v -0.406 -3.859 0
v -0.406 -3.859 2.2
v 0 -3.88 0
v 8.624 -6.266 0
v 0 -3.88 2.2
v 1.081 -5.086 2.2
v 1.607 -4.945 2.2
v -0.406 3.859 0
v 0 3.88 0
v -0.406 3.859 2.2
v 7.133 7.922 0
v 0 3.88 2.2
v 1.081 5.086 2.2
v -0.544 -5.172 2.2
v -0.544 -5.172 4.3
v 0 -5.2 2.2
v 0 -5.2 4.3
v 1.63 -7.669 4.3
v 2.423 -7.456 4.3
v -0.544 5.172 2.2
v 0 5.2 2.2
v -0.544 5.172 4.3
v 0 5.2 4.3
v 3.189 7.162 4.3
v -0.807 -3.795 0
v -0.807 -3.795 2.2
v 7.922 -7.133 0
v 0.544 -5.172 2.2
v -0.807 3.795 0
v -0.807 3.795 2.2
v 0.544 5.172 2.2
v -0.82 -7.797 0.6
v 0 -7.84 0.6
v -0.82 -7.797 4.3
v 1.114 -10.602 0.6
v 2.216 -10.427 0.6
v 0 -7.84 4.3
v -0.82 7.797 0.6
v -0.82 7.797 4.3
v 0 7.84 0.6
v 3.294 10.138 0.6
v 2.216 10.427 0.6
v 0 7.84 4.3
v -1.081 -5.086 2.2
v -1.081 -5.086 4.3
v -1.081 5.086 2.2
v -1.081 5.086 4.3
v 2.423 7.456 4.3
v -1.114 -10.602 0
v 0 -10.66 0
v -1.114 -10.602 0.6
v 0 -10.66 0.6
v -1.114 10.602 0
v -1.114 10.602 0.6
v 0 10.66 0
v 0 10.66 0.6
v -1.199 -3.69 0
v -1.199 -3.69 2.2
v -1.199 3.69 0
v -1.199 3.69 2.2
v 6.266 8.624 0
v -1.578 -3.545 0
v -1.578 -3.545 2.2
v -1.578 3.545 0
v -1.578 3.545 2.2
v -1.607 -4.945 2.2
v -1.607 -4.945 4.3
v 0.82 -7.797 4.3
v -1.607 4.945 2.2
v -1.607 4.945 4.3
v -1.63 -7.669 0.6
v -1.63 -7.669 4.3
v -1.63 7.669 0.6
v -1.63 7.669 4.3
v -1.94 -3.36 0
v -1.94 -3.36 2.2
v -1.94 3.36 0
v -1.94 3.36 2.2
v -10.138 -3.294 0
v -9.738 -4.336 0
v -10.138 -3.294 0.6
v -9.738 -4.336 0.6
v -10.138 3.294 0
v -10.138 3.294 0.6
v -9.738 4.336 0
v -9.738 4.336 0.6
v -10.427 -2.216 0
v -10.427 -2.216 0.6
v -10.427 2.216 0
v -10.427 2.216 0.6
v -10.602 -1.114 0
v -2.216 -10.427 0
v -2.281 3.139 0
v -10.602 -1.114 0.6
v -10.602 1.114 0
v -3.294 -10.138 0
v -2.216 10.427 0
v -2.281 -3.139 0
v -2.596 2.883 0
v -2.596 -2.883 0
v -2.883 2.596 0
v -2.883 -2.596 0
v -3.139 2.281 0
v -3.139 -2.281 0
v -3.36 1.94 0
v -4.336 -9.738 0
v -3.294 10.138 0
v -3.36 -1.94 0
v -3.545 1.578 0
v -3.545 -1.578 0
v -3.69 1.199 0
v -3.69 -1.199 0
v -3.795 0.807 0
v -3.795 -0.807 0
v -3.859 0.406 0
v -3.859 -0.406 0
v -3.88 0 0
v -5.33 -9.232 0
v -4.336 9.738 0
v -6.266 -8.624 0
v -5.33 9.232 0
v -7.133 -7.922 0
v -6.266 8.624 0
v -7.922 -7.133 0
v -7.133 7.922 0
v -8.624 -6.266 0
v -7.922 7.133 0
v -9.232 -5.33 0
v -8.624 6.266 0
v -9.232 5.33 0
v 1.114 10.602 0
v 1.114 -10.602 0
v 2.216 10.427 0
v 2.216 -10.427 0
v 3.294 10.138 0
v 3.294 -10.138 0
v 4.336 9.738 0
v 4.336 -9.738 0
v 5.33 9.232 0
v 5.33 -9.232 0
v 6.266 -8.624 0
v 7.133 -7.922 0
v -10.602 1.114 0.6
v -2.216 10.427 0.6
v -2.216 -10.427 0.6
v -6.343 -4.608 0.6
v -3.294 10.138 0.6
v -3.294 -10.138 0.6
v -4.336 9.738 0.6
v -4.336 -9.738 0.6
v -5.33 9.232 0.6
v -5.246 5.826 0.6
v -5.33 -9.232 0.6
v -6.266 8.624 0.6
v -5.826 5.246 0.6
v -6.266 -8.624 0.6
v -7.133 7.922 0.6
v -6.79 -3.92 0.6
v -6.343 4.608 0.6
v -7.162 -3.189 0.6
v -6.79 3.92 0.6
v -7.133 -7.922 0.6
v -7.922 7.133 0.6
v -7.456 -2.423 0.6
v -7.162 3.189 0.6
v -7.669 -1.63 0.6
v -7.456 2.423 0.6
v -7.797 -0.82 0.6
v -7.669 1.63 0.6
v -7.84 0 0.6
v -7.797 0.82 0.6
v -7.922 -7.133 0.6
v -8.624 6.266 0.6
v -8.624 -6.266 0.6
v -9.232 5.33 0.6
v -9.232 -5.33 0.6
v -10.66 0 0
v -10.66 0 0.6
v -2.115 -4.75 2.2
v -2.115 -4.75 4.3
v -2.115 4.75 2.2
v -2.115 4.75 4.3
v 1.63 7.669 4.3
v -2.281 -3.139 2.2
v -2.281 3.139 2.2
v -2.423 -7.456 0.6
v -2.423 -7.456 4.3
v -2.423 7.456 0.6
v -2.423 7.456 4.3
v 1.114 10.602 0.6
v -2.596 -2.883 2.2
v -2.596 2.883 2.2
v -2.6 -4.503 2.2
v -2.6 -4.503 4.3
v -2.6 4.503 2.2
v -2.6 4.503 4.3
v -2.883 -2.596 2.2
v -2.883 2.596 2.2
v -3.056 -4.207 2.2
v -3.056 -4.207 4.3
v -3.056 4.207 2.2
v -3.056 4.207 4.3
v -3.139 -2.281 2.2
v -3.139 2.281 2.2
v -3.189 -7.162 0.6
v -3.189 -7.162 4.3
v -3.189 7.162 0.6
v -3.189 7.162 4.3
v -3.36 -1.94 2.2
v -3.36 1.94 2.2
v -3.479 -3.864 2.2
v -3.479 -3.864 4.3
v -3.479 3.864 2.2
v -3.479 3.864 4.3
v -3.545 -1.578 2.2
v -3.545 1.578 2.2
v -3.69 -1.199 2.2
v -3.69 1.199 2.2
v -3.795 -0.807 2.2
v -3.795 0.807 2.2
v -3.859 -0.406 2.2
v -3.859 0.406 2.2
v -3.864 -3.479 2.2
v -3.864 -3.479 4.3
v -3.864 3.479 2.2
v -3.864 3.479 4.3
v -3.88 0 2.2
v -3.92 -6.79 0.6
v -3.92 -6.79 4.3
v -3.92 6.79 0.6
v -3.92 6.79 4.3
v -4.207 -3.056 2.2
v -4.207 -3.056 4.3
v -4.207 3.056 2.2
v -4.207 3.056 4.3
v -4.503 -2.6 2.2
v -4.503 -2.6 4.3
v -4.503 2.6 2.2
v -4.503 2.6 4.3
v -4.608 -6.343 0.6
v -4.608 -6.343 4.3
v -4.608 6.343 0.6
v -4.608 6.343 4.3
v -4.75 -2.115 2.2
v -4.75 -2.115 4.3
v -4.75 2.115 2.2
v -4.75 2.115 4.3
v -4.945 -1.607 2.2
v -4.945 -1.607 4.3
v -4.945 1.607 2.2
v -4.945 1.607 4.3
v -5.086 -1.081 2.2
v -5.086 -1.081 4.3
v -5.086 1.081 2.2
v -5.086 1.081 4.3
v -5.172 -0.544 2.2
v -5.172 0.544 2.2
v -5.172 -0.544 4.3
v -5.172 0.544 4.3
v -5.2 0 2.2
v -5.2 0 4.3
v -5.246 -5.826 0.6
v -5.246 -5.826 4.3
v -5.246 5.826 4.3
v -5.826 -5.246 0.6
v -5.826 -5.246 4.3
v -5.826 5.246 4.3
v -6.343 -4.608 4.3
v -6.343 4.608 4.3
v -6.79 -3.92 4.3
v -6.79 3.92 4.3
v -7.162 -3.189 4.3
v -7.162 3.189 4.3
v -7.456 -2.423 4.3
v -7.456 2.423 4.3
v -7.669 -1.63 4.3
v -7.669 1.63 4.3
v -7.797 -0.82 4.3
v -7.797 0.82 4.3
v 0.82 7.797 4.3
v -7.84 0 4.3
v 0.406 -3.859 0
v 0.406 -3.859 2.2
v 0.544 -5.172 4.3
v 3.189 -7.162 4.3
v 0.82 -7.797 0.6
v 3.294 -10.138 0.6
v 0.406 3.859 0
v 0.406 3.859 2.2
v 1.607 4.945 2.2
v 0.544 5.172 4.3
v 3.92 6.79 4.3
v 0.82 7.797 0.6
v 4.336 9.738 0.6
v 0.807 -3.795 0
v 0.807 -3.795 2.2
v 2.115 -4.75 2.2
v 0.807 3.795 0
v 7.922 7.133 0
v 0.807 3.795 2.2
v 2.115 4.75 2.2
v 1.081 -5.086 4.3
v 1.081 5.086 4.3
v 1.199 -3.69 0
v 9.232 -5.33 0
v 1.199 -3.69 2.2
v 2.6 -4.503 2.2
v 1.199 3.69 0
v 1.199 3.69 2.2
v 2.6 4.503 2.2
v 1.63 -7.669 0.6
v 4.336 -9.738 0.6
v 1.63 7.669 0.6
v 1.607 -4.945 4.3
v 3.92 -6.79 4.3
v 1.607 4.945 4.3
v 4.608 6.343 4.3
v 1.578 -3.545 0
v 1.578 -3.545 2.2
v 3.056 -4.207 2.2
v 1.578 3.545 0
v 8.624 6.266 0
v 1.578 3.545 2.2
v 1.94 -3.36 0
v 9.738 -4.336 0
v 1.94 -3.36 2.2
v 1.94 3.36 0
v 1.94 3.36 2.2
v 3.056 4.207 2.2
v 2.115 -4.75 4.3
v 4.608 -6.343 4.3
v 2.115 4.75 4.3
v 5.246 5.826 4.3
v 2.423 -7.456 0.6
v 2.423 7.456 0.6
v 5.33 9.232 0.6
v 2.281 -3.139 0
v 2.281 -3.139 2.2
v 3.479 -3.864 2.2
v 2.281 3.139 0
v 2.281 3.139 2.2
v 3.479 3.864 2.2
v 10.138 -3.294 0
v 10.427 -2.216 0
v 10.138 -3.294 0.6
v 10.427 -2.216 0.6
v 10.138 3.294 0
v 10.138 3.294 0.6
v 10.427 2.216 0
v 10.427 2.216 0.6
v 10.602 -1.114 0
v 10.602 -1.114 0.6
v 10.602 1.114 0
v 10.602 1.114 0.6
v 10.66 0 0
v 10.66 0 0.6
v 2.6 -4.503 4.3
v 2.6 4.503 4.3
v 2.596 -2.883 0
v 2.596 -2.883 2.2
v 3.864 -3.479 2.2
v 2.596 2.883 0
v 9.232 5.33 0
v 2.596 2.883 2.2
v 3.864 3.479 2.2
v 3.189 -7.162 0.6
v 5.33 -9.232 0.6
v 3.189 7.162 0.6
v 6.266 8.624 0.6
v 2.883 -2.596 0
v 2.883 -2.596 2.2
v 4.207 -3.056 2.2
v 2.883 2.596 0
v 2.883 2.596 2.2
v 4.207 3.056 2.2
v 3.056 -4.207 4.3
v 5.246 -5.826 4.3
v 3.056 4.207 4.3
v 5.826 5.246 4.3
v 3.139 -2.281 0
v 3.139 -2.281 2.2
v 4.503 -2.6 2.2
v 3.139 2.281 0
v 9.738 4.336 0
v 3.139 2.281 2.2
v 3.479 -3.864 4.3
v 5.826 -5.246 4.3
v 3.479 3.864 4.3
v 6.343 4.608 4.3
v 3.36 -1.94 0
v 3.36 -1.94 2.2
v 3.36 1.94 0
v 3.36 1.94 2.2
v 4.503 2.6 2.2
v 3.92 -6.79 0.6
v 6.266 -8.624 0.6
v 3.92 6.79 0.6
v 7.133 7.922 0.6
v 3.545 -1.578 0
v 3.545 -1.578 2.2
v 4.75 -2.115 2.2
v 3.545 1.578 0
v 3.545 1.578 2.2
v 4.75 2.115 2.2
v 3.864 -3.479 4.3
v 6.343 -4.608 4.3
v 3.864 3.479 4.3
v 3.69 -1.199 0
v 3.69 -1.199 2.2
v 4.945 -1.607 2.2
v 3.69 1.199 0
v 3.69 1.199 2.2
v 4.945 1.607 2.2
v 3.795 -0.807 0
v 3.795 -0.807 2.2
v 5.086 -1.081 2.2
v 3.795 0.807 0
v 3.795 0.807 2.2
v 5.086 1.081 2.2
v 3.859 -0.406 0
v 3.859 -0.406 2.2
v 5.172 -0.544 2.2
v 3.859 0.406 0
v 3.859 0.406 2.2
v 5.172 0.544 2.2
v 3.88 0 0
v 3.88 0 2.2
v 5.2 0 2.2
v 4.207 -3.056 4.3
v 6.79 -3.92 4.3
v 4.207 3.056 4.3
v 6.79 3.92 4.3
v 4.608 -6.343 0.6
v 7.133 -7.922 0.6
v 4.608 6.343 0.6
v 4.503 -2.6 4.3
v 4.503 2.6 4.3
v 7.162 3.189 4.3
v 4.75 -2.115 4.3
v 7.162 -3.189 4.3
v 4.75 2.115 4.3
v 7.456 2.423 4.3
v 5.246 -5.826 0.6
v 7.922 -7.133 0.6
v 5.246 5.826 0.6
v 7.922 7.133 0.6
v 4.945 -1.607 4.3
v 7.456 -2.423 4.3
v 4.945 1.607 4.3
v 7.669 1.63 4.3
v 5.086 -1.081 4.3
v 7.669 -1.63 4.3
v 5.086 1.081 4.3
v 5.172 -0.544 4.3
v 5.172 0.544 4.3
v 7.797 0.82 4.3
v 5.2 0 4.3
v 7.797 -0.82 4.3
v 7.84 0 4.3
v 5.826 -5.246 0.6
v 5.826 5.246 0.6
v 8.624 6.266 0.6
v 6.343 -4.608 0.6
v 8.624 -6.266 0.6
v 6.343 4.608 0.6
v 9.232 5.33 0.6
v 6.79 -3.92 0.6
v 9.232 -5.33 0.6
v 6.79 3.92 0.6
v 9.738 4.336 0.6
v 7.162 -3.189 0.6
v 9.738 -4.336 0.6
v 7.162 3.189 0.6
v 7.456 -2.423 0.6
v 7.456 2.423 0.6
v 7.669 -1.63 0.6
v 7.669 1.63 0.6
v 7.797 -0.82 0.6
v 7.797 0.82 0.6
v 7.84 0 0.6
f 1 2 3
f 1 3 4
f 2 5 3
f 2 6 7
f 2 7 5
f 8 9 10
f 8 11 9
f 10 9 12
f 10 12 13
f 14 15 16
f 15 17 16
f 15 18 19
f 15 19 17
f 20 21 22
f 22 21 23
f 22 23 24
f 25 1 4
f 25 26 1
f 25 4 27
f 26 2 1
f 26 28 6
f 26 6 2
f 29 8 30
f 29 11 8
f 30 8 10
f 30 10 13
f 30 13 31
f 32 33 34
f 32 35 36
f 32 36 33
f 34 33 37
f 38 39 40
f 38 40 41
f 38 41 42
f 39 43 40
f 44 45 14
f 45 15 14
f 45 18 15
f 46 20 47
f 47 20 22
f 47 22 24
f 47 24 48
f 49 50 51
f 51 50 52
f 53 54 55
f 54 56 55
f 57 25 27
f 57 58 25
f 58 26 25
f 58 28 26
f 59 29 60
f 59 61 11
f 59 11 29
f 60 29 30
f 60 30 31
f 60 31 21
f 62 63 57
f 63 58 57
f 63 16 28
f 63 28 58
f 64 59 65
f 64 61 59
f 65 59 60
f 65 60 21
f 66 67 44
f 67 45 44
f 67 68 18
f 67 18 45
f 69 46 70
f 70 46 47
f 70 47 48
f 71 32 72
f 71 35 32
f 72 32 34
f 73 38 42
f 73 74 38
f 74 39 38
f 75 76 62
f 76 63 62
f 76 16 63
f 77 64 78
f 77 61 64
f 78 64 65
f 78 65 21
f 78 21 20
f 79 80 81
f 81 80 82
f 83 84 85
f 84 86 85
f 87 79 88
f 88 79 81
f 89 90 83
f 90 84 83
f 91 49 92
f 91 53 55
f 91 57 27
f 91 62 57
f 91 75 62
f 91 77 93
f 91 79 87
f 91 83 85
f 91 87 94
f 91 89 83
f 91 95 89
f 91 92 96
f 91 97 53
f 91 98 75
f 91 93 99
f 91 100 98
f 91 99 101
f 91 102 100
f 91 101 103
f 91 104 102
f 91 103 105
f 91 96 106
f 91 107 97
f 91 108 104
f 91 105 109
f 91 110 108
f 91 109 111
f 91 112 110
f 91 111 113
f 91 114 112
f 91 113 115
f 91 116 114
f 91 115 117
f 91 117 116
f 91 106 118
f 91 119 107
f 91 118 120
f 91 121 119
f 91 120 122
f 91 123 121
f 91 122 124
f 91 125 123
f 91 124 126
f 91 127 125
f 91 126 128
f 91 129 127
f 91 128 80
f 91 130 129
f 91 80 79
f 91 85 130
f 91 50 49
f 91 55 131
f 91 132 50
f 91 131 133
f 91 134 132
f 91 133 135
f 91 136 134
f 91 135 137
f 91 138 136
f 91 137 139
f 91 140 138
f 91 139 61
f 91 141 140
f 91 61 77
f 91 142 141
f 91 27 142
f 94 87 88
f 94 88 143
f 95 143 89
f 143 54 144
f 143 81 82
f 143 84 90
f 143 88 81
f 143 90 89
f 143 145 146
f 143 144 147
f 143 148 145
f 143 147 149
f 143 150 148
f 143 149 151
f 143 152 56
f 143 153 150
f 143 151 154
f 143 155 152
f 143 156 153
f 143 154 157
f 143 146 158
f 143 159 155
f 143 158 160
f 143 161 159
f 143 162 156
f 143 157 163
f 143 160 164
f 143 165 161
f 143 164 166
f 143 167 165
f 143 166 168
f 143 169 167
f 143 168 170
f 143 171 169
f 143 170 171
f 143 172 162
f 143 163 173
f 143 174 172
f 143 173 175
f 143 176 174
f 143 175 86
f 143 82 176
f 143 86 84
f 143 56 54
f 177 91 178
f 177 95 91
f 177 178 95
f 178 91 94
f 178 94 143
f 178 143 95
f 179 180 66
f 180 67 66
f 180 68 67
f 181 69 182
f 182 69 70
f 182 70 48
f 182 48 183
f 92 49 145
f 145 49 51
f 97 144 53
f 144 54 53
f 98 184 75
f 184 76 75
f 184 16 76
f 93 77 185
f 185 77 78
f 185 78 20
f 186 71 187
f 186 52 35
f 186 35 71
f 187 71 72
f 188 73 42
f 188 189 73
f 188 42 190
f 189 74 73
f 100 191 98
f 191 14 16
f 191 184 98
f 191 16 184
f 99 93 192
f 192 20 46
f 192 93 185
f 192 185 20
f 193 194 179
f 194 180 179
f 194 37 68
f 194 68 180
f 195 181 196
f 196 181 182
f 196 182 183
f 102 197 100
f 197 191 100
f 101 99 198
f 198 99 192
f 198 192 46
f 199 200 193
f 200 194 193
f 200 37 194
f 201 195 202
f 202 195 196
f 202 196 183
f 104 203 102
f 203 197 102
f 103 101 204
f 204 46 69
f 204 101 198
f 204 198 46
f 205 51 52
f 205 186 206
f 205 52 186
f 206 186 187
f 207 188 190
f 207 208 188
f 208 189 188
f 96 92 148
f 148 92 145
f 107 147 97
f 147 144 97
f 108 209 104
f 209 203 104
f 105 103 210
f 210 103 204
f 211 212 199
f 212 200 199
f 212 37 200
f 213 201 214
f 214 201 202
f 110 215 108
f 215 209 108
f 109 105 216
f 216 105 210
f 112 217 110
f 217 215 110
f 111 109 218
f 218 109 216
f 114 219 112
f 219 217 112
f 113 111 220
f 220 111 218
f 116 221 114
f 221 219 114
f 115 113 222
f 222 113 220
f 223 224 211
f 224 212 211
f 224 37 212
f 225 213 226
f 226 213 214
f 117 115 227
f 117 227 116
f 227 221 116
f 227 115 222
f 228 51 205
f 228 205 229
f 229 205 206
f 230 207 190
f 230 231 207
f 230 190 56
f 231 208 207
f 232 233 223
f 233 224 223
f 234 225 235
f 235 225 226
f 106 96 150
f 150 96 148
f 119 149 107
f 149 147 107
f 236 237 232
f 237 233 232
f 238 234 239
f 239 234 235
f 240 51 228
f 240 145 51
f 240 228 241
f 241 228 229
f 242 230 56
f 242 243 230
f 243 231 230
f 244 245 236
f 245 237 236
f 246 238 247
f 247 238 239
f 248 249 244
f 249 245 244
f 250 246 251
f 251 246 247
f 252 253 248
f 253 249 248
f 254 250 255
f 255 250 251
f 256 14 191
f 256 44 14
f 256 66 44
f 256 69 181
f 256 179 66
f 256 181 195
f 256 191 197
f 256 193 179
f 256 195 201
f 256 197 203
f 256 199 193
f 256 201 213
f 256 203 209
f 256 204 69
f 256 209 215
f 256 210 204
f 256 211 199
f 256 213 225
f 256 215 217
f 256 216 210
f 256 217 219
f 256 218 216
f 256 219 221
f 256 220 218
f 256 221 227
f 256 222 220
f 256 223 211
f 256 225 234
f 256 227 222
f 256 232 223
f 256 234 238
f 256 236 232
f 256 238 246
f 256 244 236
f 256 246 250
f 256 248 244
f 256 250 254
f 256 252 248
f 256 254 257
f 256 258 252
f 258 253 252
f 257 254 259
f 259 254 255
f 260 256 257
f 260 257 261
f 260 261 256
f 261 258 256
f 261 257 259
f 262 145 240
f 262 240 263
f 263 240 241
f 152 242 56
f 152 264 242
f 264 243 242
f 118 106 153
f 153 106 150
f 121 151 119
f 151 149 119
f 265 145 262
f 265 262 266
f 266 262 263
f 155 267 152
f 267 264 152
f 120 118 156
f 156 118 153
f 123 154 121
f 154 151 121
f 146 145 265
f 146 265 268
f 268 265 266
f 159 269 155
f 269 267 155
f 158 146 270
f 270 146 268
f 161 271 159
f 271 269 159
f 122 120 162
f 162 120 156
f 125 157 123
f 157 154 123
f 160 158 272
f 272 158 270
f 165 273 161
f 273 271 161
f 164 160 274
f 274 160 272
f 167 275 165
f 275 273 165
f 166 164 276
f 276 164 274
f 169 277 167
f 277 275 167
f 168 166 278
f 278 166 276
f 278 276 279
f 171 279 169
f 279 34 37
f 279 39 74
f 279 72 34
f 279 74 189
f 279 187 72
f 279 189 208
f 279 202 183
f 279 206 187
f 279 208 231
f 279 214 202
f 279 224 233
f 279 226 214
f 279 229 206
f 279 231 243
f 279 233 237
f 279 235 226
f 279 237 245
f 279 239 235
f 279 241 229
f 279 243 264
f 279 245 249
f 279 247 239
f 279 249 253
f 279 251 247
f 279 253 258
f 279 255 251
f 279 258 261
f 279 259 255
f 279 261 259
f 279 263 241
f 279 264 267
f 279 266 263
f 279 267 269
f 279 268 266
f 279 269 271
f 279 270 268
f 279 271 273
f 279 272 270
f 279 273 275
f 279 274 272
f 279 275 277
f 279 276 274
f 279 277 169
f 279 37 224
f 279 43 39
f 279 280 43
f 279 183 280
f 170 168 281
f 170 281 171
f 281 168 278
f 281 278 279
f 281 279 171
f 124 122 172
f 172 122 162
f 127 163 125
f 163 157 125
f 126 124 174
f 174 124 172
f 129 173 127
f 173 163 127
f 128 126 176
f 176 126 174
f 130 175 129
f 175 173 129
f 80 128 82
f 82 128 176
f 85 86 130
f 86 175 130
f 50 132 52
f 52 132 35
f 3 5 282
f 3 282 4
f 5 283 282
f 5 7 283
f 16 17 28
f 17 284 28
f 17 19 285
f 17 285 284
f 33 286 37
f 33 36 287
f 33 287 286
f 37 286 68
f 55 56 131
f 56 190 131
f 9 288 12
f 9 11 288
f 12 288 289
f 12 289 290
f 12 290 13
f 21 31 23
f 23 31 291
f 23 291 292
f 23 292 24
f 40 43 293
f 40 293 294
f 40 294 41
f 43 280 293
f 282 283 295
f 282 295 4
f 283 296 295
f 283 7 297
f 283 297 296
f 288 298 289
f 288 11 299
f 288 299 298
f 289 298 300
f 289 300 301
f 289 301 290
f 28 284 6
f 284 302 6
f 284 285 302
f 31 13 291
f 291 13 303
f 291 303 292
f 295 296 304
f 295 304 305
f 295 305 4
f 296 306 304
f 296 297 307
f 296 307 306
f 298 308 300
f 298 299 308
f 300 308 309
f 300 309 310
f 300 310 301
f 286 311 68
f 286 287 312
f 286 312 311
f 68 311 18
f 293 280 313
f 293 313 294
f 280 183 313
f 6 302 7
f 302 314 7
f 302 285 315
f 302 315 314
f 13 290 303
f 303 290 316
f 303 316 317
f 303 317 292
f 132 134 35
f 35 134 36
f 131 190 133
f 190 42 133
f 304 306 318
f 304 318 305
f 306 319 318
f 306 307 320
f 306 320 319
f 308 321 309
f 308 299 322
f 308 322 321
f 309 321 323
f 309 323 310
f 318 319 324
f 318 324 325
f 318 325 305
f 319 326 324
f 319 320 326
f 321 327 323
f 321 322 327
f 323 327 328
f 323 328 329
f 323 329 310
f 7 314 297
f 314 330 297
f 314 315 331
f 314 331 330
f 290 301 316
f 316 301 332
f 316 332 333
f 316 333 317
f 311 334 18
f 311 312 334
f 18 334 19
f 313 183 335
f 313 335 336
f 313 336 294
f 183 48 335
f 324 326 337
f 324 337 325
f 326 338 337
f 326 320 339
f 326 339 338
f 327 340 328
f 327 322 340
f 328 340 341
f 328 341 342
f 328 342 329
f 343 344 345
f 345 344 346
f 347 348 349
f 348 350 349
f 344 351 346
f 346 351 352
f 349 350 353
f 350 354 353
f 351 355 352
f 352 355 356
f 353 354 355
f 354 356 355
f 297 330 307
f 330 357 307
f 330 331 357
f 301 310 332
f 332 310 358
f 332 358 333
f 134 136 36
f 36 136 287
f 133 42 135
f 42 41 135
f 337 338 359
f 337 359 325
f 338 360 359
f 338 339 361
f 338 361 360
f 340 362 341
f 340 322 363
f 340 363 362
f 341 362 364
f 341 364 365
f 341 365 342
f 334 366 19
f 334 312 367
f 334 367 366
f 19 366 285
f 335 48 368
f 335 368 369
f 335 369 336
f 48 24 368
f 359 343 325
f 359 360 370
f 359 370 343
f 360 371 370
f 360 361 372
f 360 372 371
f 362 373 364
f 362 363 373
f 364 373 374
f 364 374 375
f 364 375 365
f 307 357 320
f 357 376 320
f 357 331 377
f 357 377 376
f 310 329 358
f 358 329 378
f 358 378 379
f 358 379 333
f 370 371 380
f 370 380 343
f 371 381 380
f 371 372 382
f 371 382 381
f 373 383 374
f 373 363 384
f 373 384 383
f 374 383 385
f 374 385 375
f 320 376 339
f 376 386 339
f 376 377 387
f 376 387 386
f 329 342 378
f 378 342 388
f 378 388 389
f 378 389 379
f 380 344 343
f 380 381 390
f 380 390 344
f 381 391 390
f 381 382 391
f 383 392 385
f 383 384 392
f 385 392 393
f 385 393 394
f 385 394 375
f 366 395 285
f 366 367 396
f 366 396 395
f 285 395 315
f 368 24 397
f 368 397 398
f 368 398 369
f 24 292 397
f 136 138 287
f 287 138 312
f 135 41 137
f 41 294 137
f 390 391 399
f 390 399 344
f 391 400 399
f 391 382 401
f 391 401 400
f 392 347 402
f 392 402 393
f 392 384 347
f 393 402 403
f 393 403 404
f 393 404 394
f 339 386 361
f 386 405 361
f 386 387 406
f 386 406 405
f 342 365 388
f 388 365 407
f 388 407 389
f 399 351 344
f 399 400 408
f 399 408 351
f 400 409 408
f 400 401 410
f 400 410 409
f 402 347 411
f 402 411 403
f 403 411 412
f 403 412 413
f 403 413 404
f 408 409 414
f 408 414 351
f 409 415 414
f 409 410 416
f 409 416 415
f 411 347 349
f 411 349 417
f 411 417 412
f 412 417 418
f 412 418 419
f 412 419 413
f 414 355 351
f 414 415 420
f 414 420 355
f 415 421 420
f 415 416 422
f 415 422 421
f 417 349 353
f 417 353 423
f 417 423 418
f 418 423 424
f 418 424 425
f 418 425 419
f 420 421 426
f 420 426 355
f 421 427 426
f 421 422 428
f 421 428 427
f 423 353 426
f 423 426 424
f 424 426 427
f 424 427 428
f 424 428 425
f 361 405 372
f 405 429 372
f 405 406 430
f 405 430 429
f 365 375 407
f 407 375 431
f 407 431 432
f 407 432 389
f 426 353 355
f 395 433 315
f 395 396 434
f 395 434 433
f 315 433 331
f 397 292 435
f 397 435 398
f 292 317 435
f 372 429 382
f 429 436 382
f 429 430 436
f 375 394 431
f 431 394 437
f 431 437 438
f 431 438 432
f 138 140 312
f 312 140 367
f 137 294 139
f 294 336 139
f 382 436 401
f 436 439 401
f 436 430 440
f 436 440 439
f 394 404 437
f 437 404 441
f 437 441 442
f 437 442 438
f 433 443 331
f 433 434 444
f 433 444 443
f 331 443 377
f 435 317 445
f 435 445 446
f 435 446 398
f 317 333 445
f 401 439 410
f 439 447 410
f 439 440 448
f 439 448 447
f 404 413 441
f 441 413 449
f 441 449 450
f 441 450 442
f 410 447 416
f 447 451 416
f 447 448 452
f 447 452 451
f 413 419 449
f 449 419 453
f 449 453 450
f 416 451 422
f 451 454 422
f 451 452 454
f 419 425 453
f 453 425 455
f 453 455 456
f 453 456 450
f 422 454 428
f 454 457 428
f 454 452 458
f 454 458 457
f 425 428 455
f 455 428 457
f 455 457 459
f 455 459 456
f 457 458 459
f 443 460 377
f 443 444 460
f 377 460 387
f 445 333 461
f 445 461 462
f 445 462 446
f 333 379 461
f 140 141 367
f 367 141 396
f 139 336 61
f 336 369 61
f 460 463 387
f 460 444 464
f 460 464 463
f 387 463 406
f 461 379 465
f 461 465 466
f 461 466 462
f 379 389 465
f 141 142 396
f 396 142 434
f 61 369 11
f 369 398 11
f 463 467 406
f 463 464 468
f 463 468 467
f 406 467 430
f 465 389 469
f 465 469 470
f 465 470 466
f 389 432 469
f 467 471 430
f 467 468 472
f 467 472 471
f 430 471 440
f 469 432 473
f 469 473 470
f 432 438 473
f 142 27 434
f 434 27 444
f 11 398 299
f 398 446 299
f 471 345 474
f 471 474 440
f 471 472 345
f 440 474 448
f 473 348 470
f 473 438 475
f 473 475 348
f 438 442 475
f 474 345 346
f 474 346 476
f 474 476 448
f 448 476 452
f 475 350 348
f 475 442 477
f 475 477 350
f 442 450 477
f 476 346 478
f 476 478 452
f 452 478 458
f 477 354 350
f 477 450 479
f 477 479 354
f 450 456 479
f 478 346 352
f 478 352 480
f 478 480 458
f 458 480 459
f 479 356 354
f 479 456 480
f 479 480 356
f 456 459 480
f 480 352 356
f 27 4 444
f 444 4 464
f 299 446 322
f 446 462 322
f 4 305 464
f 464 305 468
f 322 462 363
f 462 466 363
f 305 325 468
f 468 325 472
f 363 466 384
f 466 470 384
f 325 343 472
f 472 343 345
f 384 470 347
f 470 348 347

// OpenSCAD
// file: ../configuration.scad
// Vyska vrstvy pro tisknuti dilu [mm]
layer_height = 0.25; //Slic3r->Print Settings->Layers and perimeters->Layer height

// Rezerva prumeru hlavy sroubu [mm]
spare = 1;
// Prumer hlavy M6 sroubu (pricte se rezerva) [mm]
M6_head_diameter = 10.6+spare;
//M6_head_diameter = 12+spare;

// Vyska hlavy M6 sroubu (dulezite pro zapusteni hlavy sroubu do plastu) [mm]
M6_head_height = 3.6;
//M6_head_height = 4.5;

//Prumery sroubu a tyci
M8_smooth_rod_diameter = 8.1;
M8_smooth_rod_diameter_catch = 8.2;
M6_diameter = 6.2;
M6_diamater_horizontal = 6.5;
M3_diameter = 3.2;
M3_diameter_horizontal = 3.2;

//Prumery matic
M3_nut_diameter = 6.8;
M3_nut_diameter_horizontal = 6.8;

//ALU profile parameters
ALU_cut_width = 7.9;
ALU_cut_width_horizontal = 7.9;

// Delka motoru (ovlivni dily pro osy Z a Y)
//SX17-1003LQFE (doporuceno hlavne na osu Z)
//motor_length = 29.5;
//SX17-1003 (doporuceno hlavne na osu Z)
motor_length = 34;
//SX17-1005
//motor_length = 40;
//SX17-0905 - zde je jiz problem s velkou vyskou motoru na ose Z - musi se upravit endstop-holder
//motor_length = 48;

// Sirka vytlacovaneho materialu [mm]
extrusion_width = 0.66; //Slic3r->Print Settings->Advanced->Default extrusion width

/// Vyberte typ remenu ******************************************************

// GT2 
//belt_tooth_distance = 2;
//belt_tooth_ratio = 0.5;

// T2.5
belt_tooth_distance = 2.5;
belt_tooth_ratio = 0.68;
// main file
// PRUSA iteration3
// 623 bearing belt guide
// GNU GPL v3
// Josef Průša <iam@josefprusa.cz> and contributors
// http://www.reprap.org/wiki/Prusa_Mendel
// http://prusamendel.org

include <../configuration.scad>

wall= 2*extrusion_width;
clearence= 0.2; 

module belt_guide_base(){
 cylinder(r=5+clearence+2*wall, h=5-0.7, $fn=60);
 //cylinder(r=6.5+wall+clearence, h=5-0.2, $fn=50);
 cylinder(r=6.5+wall+clearence+2*wall, h=0.6, $fn=60);
}

module belt_guide_holes(){
 translate([0,0,2.2]) cylinder(r=5+clearence, h=10, $fn=60);
 translate([0,0,-1]) cylinder(r=5+wall+clearence-2*wall, h=10, $fn=60);
}

// Final part
module belt_guide(){
 difference(){
  belt_guide_base();
  belt_guide_holes();
 }
}

belt_guide();
